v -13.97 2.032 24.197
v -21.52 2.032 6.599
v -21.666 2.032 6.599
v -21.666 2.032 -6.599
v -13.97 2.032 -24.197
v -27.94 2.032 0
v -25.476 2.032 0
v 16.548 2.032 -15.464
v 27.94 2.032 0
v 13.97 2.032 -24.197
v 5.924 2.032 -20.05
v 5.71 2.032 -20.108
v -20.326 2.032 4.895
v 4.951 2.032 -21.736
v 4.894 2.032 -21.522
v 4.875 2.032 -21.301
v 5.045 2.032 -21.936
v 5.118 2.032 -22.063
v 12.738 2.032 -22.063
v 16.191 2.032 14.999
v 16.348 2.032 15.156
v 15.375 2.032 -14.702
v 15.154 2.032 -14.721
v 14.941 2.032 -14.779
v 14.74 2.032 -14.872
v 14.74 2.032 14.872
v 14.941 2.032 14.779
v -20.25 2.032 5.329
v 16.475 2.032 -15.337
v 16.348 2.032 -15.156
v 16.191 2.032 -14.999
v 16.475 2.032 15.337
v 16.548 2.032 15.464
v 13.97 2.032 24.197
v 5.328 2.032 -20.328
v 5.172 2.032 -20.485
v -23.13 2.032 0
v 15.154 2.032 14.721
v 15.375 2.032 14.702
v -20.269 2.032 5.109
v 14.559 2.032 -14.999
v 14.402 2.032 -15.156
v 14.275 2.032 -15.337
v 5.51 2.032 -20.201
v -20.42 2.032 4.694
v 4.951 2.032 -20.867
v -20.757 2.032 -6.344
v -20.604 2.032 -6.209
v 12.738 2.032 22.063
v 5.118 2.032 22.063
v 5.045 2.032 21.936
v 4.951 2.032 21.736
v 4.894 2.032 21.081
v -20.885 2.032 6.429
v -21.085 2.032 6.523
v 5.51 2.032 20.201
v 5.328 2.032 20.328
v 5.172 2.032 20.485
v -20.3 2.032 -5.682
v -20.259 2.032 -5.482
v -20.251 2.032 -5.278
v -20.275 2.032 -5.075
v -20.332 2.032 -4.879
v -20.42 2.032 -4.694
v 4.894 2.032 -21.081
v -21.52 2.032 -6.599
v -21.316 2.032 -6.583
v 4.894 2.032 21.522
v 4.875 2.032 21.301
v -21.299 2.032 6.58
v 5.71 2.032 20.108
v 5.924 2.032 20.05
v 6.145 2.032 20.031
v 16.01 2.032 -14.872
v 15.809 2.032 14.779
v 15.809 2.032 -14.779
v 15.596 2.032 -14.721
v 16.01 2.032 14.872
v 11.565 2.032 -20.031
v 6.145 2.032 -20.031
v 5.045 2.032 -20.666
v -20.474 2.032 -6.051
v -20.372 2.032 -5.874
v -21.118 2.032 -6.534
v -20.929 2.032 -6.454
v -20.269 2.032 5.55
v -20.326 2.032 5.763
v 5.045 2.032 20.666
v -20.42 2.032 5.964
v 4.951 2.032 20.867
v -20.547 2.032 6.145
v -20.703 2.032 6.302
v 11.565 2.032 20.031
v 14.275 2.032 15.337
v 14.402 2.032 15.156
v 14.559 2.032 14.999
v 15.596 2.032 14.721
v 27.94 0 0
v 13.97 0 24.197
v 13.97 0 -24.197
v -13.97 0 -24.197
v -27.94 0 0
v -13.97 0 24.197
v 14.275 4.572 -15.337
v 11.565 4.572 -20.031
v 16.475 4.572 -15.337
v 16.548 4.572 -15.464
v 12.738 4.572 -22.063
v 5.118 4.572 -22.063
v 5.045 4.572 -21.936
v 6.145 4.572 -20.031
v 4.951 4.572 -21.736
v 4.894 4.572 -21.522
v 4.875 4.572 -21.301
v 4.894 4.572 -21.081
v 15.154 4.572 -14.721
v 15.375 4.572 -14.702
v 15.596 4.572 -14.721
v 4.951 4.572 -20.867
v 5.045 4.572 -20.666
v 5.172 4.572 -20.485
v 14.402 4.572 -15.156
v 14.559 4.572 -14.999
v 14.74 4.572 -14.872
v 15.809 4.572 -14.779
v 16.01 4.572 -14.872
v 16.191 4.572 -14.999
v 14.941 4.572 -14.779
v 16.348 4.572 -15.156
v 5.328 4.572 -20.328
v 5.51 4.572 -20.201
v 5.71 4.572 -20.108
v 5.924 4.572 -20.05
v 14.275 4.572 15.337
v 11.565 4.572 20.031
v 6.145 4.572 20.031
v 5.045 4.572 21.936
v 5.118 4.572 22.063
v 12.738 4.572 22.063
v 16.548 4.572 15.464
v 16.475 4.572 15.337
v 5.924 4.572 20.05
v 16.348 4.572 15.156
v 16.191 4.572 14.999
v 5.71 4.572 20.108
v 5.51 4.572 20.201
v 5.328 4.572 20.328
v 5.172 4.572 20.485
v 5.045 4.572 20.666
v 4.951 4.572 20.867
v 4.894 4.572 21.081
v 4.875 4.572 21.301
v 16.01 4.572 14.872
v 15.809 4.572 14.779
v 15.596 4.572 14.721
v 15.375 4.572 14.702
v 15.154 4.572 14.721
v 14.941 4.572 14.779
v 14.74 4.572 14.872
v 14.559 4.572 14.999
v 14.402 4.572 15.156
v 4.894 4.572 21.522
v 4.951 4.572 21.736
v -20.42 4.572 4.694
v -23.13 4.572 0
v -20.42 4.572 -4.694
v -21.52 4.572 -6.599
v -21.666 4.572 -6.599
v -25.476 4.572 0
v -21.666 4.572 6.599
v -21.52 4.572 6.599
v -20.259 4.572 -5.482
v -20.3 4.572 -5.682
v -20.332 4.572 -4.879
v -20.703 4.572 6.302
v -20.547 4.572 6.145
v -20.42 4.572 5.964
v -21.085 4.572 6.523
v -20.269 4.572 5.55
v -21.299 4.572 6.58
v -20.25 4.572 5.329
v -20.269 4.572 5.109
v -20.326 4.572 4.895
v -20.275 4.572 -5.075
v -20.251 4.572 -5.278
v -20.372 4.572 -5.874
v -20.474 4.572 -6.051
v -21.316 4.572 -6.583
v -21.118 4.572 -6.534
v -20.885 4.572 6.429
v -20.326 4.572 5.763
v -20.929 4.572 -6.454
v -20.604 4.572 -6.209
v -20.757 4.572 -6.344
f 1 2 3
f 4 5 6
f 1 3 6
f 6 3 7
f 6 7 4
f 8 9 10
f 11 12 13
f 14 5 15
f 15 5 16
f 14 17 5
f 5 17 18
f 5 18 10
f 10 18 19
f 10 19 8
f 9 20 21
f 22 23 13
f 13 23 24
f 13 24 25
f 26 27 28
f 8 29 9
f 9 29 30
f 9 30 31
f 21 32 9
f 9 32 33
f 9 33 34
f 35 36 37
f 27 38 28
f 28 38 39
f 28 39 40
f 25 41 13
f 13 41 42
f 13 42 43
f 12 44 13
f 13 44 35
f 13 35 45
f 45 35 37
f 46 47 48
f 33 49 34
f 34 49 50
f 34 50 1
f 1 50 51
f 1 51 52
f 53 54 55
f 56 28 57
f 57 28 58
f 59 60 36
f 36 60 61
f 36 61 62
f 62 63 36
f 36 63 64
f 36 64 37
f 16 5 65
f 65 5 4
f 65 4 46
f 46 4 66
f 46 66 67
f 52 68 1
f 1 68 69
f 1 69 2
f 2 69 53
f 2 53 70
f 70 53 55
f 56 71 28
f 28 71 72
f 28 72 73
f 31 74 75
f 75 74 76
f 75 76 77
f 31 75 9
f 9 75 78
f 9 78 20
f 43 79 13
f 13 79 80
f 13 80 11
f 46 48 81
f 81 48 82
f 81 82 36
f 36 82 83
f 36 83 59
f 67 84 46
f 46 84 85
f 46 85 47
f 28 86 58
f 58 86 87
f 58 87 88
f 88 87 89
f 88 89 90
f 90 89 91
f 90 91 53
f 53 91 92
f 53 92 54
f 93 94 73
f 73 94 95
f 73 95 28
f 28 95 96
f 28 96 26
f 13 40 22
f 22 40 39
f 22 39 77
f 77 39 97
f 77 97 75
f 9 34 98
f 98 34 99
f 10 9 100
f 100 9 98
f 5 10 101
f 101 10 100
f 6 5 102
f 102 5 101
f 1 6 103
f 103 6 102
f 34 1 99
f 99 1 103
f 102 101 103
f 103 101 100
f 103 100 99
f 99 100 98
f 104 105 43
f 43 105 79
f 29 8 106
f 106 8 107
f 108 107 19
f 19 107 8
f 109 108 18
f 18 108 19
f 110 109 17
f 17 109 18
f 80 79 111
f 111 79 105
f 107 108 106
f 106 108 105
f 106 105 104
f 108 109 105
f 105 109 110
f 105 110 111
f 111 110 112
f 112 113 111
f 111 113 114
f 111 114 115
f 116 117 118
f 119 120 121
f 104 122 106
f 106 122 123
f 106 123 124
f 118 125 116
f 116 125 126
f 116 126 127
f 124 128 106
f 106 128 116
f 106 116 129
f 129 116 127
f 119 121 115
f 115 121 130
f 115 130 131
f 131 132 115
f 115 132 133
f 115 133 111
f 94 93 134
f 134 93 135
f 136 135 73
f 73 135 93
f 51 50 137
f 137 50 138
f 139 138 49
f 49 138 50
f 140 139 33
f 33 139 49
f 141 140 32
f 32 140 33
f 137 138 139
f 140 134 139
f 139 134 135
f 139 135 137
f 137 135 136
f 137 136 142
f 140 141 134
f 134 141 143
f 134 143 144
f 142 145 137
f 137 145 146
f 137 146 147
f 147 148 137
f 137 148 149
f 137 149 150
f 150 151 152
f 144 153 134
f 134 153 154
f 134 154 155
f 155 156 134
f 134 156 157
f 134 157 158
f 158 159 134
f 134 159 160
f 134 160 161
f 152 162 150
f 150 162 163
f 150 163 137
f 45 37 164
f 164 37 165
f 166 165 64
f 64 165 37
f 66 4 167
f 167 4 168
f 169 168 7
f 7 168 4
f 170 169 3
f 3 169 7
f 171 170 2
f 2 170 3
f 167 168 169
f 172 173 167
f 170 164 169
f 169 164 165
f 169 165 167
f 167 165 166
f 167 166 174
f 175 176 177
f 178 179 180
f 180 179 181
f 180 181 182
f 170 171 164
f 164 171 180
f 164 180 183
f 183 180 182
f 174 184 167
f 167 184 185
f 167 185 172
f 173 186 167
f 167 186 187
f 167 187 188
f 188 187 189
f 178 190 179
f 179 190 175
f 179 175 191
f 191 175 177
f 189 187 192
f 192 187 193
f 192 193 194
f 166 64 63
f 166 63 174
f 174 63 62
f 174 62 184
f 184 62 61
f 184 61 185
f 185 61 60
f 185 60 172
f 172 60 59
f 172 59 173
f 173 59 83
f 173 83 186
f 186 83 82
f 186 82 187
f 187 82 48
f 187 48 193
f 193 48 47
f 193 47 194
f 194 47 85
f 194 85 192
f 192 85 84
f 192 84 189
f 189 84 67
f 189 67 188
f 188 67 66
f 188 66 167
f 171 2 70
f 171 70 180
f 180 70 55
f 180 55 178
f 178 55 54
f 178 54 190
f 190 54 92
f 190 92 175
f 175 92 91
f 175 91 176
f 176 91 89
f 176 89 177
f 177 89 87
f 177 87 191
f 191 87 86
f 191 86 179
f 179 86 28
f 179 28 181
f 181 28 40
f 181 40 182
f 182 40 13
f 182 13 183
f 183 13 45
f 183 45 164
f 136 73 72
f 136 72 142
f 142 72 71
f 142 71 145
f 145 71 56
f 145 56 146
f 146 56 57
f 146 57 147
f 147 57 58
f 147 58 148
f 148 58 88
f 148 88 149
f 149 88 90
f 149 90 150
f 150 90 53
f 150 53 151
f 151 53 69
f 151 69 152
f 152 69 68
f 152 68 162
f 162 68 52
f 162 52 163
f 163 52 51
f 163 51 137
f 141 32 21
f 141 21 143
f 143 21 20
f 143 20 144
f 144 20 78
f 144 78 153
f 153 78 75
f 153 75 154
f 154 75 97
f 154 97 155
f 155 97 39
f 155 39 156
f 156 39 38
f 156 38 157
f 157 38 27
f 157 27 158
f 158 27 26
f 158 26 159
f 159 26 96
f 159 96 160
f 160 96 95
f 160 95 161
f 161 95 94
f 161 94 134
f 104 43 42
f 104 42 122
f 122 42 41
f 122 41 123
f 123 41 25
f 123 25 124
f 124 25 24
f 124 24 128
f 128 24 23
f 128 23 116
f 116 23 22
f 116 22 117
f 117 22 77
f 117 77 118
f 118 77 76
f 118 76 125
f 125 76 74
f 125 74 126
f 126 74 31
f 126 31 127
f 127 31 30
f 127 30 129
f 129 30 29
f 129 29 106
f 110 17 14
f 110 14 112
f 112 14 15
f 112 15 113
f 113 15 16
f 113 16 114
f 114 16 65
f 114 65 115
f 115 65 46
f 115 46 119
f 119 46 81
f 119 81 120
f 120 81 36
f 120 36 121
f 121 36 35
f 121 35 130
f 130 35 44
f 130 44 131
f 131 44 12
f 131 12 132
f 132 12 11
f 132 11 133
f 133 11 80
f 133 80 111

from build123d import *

# Parameters (mm, degrees)
BOSS_EXTRUDE1_DEPTH = 2.032
BOSS_EXTRUDE2_DEPTH = 2.54
FILLET2_R           = 1.27


with BuildPart() as part:
    # Sketch1 → Boss-Extrude1 (new body)
    with BuildSketch(Plane(origin=(0, 0, 0), x_dir=(1, 0, 0), z_dir=(0, 1, 0))):
        Polygon((27.94, 0), (13.97, 24.196749782), (-13.97, 24.196749782), (-27.94, 0), (-13.97, -24.196749782), (13.97, -24.196749782), align=None)
    extrude(amount=BOSS_EXTRUDE1_DEPTH)

    # Sketch2 → Boss-Extrude2 (add)
    with BuildSketch(Plane(origin=(0, 2.032, 0), x_dir=(1, 0, 0), z_dir=(0, 1, 0))):
        Polygon((11.564989719, -20.031149782), (3.944989719, -20.031149782), (5.118165466, -22.063149782), (12.738165466, -22.063149782), (16.548165466, -15.464036205), (15.374989719, -13.432036205), align=None)
        Polygon((-23.129979437, 0), (-19.319979437, 6.599113577), (-21.666330931, 6.599113577), (-25.476330931, 0), (-21.666330931, -6.599113577), (-19.319979437, -6.599113577), align=None)
        Polygon((5.118165466, 22.063149782), (3.944989719, 20.031149782), (11.564989719, 20.031149782), (15.374989719, 13.432036205), (16.548165466, 15.464036205), (12.738165466, 22.063149782), align=None)
    extrude(amount=BOSS_EXTRUDE2_DEPTH)

    # Fillet2
    fillet2_edges = [part.edges().sort_by_distance(p)[0] for p in [
        (15.374989719, 3.302, -13.432036205),
        (3.944989719, 3.302, -20.031149782),
        (15.374989719, 3.302, 13.432036205),
        (3.944989719, 3.302, 20.031149782),
        (-19.319979437, 3.302, 6.599113577),
        (-19.319979437, 3.302, -6.599113577),
    ]]
    fillet(fillet2_edges, radius=FILLET2_R)


solid = part.part
